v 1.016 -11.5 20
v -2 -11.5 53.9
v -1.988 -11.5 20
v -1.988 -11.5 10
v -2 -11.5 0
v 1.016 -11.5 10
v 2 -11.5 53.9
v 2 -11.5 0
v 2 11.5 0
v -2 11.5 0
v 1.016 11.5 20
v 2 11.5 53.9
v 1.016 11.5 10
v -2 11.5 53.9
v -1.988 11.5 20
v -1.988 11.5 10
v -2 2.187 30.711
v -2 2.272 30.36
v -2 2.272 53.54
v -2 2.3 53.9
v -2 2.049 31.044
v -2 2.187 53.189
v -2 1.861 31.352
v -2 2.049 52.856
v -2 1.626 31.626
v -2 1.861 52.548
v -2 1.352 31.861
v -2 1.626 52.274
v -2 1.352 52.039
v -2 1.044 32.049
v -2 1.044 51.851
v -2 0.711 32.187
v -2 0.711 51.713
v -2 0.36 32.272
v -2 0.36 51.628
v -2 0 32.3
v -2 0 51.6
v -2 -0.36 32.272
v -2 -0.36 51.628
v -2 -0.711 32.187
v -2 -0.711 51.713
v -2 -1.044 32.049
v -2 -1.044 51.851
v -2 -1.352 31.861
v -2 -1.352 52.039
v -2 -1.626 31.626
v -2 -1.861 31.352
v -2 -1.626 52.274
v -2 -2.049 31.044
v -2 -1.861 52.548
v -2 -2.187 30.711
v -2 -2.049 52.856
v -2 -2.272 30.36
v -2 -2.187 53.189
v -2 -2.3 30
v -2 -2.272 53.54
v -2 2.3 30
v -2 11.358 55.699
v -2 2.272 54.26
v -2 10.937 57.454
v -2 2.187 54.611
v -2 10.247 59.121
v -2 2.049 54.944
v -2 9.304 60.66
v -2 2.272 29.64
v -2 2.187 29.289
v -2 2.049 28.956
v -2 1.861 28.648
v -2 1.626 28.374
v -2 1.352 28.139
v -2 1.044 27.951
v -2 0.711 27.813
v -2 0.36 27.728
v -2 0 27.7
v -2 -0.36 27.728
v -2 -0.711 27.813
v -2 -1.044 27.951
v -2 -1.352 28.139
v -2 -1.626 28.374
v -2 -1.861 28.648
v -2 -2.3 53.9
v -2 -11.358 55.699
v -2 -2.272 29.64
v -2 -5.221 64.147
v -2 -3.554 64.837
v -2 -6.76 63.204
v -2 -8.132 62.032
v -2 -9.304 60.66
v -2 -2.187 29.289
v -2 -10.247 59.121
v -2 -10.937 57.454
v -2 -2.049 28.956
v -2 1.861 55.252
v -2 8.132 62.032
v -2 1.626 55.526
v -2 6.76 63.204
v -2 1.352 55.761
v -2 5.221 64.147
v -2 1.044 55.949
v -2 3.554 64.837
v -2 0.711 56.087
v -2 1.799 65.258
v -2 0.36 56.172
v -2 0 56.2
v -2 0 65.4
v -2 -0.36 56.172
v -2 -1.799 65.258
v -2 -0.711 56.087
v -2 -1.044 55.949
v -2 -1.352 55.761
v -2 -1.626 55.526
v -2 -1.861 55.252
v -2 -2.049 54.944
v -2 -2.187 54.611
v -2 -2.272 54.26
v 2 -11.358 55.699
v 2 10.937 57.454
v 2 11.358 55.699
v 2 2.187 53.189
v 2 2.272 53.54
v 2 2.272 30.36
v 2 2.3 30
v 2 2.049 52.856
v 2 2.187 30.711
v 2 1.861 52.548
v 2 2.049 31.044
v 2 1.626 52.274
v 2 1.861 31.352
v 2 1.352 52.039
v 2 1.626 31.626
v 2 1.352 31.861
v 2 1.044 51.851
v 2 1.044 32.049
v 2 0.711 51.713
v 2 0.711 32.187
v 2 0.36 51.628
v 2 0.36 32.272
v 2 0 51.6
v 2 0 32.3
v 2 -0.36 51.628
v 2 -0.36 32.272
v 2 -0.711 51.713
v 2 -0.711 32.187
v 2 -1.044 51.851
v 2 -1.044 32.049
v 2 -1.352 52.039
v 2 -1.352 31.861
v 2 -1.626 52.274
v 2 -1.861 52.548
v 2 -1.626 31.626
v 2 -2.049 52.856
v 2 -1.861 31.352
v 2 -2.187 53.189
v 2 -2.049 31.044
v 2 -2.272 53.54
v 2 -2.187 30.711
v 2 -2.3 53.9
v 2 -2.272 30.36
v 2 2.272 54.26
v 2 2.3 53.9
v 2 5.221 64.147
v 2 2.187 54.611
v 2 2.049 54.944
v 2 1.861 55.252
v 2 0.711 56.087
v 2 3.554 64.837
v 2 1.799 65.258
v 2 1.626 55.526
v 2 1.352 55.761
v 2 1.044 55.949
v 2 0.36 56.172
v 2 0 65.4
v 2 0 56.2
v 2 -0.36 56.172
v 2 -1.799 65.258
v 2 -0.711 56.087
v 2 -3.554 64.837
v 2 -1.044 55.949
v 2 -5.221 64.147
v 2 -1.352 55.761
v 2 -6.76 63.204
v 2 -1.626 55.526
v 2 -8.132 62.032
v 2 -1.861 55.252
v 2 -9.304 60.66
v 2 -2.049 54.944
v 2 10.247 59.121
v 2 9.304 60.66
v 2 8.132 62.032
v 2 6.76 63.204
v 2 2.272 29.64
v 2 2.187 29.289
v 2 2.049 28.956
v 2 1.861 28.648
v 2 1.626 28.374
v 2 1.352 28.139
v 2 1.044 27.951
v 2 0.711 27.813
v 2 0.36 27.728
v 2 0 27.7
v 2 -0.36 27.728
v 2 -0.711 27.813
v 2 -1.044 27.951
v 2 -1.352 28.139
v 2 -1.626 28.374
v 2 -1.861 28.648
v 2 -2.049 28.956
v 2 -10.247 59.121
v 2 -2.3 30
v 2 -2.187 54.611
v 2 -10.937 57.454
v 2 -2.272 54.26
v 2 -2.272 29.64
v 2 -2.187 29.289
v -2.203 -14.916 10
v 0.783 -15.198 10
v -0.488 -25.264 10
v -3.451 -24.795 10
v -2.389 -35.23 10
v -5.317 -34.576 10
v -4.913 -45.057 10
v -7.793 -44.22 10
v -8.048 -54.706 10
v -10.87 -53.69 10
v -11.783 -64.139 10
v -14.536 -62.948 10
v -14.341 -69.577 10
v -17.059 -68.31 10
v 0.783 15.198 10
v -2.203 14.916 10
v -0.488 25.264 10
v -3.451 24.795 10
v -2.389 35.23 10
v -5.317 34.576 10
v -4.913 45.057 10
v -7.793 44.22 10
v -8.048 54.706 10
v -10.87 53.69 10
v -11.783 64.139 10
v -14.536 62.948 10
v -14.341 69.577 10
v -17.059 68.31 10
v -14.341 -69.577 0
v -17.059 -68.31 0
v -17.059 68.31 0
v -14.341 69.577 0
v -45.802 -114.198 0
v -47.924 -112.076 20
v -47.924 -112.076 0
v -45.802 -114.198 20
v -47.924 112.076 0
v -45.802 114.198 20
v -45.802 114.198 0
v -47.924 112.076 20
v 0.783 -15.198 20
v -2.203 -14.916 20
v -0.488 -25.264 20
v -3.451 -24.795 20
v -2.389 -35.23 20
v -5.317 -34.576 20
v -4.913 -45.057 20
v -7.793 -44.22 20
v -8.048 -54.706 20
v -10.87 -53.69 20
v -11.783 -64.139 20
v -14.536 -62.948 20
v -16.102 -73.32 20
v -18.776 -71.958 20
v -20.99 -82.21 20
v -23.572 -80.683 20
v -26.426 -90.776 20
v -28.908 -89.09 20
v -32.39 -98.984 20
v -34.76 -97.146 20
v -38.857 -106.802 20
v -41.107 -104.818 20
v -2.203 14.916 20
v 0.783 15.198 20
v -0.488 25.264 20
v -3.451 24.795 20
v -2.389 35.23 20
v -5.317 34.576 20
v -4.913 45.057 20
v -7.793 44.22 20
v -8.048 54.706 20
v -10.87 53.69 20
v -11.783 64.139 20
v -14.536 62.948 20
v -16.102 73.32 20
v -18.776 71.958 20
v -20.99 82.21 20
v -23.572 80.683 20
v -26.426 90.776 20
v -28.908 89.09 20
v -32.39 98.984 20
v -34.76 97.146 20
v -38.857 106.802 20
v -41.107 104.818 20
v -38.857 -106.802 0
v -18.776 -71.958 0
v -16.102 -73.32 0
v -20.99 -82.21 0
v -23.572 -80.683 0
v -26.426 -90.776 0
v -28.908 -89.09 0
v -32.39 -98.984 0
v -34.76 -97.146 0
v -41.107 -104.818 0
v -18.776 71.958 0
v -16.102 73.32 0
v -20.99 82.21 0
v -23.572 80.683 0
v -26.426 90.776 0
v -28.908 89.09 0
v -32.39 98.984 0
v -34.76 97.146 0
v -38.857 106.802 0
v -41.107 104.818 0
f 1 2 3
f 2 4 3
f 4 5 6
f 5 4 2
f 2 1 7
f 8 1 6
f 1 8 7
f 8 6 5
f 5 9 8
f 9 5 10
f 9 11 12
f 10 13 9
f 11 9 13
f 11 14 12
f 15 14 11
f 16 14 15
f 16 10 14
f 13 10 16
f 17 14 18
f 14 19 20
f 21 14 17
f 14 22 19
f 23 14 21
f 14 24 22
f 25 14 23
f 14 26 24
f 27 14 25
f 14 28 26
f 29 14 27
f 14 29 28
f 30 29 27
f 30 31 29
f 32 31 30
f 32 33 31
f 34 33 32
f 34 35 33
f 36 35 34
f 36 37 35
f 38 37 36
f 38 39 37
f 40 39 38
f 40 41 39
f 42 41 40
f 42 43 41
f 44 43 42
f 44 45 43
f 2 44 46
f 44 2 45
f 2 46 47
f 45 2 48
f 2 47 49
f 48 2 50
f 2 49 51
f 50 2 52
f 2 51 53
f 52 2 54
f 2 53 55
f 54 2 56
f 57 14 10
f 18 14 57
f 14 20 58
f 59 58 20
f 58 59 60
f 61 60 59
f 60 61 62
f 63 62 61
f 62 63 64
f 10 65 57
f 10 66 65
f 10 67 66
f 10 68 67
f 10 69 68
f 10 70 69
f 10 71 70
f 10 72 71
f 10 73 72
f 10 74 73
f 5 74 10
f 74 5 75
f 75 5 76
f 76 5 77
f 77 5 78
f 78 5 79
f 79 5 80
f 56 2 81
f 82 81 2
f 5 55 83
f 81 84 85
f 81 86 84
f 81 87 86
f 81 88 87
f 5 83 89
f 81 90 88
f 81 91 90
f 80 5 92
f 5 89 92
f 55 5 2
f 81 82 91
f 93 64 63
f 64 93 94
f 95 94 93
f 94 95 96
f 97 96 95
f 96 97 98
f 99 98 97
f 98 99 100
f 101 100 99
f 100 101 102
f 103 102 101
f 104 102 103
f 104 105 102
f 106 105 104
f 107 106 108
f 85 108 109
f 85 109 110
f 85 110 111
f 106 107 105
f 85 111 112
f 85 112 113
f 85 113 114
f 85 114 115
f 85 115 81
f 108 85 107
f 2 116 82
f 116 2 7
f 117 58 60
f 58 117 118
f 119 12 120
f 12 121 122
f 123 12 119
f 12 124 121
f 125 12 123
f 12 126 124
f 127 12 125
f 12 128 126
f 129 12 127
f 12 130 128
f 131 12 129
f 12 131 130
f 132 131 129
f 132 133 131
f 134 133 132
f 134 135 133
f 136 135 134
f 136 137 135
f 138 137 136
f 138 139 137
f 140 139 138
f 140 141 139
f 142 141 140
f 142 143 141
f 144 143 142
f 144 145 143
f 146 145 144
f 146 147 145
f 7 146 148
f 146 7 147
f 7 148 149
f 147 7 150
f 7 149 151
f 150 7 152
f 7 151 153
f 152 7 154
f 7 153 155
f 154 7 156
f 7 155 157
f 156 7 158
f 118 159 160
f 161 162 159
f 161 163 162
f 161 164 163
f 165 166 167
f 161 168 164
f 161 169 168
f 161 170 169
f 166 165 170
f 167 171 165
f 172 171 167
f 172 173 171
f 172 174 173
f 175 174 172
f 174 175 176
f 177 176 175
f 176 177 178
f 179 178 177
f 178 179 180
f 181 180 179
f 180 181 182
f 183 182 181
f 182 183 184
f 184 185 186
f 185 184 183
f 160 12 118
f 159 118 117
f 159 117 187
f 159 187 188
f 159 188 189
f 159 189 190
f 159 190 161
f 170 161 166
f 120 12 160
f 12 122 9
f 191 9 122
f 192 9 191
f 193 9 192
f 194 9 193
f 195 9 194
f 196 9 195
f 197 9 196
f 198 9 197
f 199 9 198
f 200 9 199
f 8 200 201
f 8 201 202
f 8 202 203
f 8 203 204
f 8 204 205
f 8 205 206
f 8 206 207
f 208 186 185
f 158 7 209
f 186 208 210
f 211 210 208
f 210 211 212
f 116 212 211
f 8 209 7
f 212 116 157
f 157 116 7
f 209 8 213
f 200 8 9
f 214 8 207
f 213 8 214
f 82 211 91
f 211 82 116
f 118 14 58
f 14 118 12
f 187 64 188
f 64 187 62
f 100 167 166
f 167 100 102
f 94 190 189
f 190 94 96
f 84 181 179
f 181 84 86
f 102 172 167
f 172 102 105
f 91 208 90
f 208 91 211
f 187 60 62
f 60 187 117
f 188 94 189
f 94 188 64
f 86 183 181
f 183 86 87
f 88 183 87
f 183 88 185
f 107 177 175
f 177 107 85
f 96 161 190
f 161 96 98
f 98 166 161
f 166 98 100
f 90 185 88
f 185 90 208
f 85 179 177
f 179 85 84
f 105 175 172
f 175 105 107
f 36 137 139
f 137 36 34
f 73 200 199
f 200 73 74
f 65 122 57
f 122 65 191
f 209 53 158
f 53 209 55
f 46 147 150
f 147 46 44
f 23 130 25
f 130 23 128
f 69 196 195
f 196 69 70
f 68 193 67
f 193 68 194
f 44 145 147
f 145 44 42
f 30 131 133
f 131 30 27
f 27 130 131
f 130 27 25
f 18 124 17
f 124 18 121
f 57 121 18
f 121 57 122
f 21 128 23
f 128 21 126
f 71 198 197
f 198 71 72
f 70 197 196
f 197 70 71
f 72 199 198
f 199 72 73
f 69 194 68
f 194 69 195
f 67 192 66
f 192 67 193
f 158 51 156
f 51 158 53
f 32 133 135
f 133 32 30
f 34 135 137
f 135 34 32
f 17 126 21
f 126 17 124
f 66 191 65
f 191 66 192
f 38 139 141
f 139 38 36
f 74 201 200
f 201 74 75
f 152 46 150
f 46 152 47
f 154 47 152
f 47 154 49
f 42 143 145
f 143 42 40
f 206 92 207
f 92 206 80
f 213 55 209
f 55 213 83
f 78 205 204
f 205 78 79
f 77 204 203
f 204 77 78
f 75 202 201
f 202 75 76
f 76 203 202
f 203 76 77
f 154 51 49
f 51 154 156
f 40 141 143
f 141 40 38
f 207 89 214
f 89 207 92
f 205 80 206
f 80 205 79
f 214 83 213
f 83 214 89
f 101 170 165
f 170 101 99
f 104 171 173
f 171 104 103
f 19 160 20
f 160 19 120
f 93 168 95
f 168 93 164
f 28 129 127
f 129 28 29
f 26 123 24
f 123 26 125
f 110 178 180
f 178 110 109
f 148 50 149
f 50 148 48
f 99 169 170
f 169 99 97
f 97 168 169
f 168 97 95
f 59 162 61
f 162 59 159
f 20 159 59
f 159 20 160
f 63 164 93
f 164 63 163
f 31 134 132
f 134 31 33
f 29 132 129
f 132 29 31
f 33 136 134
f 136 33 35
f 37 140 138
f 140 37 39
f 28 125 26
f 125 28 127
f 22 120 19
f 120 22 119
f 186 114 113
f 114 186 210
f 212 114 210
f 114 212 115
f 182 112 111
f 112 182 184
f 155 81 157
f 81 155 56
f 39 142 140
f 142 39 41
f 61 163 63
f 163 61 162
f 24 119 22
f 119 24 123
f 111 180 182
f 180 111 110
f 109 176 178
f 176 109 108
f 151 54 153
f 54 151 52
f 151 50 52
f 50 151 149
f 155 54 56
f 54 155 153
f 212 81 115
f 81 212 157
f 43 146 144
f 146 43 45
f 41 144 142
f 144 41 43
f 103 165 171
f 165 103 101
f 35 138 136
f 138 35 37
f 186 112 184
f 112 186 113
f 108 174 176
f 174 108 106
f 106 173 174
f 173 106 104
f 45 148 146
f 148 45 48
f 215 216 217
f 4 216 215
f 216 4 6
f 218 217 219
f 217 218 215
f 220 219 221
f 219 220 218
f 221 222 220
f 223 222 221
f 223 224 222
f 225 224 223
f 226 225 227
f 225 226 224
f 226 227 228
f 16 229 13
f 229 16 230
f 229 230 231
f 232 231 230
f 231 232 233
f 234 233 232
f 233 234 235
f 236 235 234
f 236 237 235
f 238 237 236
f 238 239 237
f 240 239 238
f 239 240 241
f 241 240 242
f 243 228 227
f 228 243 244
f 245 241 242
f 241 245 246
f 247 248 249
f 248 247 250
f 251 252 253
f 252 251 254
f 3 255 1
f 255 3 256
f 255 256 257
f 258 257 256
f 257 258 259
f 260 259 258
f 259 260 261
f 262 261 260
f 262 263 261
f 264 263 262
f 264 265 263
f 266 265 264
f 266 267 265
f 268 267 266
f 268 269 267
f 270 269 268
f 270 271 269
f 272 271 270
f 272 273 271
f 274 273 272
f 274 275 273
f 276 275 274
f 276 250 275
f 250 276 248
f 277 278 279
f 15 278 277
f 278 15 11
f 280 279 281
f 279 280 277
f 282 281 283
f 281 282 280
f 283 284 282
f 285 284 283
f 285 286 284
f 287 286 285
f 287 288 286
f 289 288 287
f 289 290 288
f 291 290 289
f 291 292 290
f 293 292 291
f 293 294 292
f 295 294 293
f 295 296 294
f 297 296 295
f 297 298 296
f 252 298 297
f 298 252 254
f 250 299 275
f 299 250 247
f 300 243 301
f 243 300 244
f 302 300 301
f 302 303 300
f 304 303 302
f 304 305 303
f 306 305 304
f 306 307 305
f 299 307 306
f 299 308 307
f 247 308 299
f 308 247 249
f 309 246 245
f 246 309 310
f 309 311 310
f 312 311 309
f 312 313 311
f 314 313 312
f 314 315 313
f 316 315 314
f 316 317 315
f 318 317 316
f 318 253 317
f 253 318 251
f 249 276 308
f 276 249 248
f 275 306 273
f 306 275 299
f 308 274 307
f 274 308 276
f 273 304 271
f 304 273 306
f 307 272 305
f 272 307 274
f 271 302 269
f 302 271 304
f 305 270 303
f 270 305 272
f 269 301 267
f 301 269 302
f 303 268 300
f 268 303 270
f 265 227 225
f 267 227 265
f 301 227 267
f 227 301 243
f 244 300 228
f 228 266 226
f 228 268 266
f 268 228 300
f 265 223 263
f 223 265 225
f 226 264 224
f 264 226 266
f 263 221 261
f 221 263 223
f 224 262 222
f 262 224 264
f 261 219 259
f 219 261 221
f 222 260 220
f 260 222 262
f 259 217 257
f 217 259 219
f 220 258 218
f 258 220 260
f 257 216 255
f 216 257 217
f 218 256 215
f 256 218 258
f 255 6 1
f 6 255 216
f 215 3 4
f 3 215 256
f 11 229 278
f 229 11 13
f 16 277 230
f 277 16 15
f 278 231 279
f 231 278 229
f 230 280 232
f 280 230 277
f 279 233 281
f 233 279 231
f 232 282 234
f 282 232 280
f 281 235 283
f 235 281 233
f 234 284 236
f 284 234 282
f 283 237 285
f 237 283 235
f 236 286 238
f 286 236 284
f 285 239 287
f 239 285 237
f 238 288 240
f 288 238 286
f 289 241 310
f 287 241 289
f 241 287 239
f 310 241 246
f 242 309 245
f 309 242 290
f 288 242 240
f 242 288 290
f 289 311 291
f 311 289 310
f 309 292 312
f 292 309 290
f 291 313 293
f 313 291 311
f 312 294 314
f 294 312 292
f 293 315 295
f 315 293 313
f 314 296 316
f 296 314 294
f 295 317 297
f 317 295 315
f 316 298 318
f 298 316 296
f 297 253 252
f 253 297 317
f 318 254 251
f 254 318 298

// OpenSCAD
$fn=100;
/*
  Robot Vac Skirt Extender
  For Model: Hoover Performer Plus
  Author: Brian Khuu 2019
  
  This ensures it doesn't go over carpets or doorstops if needed.
  This is mounted via M4 screws in the Hoover Performer Plus.

*/

// Minimum Skirt Enable?
minimum_skirt = false;

// Holes in extended skirt (needs printed support)
skirt_holes = true;

// Hole Dia
hole_dia=4.6;

// Hole Spacing
hole_spacing=28.5-4.6;

// Skirt Length from lower hole
skirt_length=30;

// Thickness
thickness=4;

// Skirt Thickness
thickness_skirt=3;

// Width
width=hole_dia*5;

// radius of bot
bot_radius=160;

// Bottom Skirt Height
bot_skirt_h=20;

module minimum_skirt(rounded_bottom)
{
  translate([skirt_length,0,0])
  difference()
  {
    union()
    {
      hull()
      {
        translate([0,0,0])
          cylinder(d=width, h=thickness, $fn=40, center=true);
        translate([hole_spacing,0,0])
          cylinder(d=width, h=thickness, $fn=40, center=true);
        translate([-skirt_length,0,0])
          cube([0.001,width,thickness], center=true);
        if (rounded_bottom)
          translate([-skirt_length,0,0])
            rotate([90,0,0])
              cylinder(d=thickness, h=width, $fn=40, center=true);
      }
    }
    translate([0,0,0])
      cylinder(d=hole_dia, h=2+thickness, $fn=40, center=true);
    translate([hole_spacing,0,0])
      cylinder(d=hole_dia, h=2+thickness, $fn=40, center=true);
  }
}

module full_skirt()
{
  translate([-bot_radius,0,0])
  union()
  {
    translate([bot_radius,0,0])
      rotate([0,-90,0])
        minimum_skirt(false);
    difference()
    {
      rotate([0,0,-45])
        rotate_extrude(angle=90)
          translate([bot_radius,bot_skirt_h/2,0])
            square([thickness_skirt,bot_skirt_h], center=true);
      
      if (skirt_holes)
      for(xi=[-25:1:25])
        rotate([0,0,xi])
          cube([1000,3,((bot_skirt_h-10)*2)], center=true);
    }
  }
}

if (minimum_skirt)
  minimum_skirt(true);
else
  full_skirt();
